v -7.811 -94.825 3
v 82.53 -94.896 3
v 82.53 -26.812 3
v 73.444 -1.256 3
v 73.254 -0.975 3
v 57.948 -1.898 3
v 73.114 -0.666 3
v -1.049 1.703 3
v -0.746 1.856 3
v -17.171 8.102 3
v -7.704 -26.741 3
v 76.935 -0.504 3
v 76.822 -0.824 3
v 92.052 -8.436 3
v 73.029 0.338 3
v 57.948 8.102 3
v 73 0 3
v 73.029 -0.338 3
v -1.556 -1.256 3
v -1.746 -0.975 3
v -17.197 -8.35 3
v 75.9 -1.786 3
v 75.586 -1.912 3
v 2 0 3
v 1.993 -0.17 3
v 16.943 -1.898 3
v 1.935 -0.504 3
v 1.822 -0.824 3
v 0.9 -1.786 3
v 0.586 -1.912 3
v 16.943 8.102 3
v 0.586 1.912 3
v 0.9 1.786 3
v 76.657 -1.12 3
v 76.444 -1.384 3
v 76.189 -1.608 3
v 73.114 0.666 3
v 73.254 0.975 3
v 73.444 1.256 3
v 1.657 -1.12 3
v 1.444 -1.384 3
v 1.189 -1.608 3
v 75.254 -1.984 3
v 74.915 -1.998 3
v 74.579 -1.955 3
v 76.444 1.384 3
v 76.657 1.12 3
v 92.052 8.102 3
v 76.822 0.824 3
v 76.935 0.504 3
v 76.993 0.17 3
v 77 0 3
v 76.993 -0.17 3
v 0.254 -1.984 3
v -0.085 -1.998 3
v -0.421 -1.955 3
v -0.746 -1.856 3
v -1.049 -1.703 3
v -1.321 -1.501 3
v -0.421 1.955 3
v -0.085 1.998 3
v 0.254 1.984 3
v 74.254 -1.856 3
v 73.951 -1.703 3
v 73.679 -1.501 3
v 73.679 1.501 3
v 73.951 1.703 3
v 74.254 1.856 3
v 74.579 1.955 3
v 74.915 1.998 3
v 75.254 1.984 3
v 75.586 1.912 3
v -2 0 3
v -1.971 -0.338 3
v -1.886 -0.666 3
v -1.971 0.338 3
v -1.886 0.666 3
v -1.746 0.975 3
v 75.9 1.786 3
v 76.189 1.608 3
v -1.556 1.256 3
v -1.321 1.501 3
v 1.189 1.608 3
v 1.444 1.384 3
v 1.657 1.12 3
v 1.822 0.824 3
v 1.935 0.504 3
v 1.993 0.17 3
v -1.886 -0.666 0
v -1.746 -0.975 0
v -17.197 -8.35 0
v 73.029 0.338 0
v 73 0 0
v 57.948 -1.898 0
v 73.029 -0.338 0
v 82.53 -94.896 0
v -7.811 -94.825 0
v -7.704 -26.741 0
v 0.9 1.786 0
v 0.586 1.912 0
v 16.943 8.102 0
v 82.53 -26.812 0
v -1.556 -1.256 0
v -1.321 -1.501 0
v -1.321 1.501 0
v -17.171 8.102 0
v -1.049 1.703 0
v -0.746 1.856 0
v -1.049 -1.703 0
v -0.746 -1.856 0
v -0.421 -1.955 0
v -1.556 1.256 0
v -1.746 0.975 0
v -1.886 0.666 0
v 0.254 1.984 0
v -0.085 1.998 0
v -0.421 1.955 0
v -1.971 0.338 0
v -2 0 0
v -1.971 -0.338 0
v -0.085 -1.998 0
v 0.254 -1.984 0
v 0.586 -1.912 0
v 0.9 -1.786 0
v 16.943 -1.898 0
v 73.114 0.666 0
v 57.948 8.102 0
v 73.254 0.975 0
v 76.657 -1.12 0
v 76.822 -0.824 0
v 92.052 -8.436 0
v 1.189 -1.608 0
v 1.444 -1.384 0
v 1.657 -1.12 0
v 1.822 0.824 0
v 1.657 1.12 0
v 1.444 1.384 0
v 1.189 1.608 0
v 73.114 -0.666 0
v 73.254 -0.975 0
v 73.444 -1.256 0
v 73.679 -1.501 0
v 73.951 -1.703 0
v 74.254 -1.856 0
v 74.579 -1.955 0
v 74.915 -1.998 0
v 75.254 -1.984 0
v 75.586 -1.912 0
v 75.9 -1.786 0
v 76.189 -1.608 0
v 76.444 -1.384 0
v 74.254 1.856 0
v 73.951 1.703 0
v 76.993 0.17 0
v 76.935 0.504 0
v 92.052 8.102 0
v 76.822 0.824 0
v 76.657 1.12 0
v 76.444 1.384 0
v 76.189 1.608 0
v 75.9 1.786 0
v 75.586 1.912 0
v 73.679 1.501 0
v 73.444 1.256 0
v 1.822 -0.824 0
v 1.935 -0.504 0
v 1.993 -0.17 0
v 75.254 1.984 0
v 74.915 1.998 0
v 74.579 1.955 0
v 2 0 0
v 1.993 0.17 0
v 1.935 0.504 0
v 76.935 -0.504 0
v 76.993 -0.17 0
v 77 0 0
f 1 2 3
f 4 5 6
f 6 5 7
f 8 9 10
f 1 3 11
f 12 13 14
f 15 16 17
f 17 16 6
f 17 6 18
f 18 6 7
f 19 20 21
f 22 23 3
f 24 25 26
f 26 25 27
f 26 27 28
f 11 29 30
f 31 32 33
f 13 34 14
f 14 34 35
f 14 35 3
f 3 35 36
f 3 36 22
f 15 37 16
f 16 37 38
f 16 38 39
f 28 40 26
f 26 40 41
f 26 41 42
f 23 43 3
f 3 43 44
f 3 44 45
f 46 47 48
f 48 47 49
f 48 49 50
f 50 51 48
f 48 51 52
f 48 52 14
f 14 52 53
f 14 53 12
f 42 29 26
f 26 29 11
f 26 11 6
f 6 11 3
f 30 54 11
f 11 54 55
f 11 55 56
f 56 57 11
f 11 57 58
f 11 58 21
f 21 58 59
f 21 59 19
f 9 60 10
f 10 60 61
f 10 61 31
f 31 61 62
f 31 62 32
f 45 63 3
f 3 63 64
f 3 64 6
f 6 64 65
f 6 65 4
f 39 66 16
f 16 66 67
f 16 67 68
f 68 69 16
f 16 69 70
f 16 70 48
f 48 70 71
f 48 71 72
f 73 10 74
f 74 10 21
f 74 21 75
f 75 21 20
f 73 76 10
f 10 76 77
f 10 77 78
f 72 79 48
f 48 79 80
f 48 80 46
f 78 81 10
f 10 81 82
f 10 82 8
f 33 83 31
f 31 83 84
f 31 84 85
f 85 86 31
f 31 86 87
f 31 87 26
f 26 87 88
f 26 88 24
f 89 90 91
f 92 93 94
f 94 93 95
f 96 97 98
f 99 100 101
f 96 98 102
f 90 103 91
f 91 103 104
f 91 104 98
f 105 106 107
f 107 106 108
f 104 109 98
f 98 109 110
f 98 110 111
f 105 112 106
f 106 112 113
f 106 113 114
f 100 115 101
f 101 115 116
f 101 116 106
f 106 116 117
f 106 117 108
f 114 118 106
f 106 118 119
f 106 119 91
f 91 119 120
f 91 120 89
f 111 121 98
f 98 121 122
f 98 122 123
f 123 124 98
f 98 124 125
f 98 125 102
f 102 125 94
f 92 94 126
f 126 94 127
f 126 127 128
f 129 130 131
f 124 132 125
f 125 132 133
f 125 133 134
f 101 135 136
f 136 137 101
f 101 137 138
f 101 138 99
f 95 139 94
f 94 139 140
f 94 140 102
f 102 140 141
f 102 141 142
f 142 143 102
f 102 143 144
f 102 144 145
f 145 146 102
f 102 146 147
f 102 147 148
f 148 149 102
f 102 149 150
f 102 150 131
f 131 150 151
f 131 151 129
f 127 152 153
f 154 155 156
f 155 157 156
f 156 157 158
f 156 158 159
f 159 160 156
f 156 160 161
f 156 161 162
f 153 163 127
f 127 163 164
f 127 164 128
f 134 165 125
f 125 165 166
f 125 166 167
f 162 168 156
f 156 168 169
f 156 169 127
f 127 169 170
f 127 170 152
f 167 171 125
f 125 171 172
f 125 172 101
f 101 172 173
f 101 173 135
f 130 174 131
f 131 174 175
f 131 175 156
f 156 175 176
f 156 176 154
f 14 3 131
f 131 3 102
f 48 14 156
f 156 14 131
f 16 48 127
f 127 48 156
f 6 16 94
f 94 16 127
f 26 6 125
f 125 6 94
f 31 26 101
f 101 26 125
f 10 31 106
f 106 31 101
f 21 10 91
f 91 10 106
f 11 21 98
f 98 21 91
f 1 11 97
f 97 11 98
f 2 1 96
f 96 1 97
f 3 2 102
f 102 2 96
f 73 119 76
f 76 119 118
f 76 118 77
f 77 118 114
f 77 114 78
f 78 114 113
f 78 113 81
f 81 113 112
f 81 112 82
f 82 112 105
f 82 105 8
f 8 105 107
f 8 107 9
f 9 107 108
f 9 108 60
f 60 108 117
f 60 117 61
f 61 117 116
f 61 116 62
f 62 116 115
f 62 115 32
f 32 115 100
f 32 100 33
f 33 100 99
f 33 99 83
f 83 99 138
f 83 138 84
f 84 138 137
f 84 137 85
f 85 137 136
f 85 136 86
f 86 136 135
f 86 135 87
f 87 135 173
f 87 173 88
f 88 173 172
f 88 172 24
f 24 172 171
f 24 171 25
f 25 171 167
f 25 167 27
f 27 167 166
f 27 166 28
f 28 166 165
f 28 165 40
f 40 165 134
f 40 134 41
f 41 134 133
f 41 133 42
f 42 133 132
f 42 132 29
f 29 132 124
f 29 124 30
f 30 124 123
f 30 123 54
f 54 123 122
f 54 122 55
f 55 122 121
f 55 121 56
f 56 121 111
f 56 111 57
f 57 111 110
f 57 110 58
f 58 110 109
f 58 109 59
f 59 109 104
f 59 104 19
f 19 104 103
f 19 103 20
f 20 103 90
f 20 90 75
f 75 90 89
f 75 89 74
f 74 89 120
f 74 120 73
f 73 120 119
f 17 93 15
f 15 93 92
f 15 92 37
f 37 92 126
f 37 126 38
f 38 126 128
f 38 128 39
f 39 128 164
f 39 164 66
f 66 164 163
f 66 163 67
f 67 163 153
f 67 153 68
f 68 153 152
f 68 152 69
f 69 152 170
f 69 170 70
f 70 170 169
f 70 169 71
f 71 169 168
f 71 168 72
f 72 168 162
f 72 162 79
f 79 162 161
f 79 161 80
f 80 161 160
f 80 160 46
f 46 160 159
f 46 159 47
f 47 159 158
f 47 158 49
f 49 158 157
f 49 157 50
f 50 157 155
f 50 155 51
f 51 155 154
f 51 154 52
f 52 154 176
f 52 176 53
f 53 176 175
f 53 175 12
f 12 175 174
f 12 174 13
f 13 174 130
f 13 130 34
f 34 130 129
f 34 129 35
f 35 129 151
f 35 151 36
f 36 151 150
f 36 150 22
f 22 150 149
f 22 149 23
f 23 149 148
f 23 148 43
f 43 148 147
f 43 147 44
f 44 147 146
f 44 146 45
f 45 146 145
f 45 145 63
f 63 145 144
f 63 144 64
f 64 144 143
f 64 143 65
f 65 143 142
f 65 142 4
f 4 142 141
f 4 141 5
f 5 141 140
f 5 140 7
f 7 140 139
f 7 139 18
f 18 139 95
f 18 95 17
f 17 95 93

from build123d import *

# Parameters (mm, degrees)
SKETCH1_R           = 2
BOSS_EXTRUDE1_DEPTH = 3


with BuildPart() as part:
    # Sketch1 → Boss-Extrude1 (new body)
    with BuildSketch(Plane.XY):
        Polygon((-17.171078522, 8.102088167), (16.942973826, 8.102088167), (16.942973826, -1.897911833), (57.947591884, -1.897911833), (57.947591884, 8.102088167), (92.052408116, 8.102088167), (92.052408116, -8.436191264), (82.530366353, -26.812061334), (82.530366353, -94.896180398), (-7.810969029, -94.825139281), (-7.70389138, -26.741104419), (-17.197021163, -8.350281515), align=None)
        Circle(SKETCH1_R, mode=Mode.SUBTRACT)
        with Locations((75, 0)):
            Circle(SKETCH1_R, mode=Mode.SUBTRACT)
    extrude(amount=BOSS_EXTRUDE1_DEPTH)


solid = part.part
